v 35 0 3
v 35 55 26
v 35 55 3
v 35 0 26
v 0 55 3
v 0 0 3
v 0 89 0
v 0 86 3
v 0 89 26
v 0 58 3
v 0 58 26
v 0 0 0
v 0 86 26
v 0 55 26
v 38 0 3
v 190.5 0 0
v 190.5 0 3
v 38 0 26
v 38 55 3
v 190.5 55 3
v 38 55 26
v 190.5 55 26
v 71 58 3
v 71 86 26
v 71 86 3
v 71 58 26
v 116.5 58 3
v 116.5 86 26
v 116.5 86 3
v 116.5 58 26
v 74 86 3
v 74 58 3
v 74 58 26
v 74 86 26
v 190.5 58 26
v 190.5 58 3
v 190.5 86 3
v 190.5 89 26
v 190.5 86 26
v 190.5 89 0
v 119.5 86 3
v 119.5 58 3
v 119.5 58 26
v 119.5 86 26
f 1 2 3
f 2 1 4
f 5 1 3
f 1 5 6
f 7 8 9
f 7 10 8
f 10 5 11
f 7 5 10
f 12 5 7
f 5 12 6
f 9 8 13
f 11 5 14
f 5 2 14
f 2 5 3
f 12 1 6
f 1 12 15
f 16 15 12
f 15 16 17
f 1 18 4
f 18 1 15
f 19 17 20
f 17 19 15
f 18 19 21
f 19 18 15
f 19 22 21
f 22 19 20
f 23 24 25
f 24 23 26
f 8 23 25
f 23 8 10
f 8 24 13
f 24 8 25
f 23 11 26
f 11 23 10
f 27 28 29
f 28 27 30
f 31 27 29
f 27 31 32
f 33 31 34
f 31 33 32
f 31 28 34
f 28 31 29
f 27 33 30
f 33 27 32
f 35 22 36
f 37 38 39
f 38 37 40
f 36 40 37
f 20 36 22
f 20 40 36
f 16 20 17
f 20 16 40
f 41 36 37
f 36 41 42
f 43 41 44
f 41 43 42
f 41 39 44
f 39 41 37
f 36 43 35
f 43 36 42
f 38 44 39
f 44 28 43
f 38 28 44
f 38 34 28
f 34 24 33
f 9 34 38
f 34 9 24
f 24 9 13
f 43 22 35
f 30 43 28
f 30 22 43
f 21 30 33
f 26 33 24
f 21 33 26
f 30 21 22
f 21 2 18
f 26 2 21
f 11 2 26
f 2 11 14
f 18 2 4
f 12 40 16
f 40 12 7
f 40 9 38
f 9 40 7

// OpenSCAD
difference() {
  cube([190.5,89,26]);
  translate([0,0,3])
    union() {
      cube([35,55,24]);
      translate([38,0,0])
        cube([190.5,55,24]);
      translate([0,58,0])
        cube([71,28,24]);
      translate([74,58,0])
        cube([42.5,28,24]);
      translate([119.5,58,0])
        cube([71,28,24]);
    }
}
